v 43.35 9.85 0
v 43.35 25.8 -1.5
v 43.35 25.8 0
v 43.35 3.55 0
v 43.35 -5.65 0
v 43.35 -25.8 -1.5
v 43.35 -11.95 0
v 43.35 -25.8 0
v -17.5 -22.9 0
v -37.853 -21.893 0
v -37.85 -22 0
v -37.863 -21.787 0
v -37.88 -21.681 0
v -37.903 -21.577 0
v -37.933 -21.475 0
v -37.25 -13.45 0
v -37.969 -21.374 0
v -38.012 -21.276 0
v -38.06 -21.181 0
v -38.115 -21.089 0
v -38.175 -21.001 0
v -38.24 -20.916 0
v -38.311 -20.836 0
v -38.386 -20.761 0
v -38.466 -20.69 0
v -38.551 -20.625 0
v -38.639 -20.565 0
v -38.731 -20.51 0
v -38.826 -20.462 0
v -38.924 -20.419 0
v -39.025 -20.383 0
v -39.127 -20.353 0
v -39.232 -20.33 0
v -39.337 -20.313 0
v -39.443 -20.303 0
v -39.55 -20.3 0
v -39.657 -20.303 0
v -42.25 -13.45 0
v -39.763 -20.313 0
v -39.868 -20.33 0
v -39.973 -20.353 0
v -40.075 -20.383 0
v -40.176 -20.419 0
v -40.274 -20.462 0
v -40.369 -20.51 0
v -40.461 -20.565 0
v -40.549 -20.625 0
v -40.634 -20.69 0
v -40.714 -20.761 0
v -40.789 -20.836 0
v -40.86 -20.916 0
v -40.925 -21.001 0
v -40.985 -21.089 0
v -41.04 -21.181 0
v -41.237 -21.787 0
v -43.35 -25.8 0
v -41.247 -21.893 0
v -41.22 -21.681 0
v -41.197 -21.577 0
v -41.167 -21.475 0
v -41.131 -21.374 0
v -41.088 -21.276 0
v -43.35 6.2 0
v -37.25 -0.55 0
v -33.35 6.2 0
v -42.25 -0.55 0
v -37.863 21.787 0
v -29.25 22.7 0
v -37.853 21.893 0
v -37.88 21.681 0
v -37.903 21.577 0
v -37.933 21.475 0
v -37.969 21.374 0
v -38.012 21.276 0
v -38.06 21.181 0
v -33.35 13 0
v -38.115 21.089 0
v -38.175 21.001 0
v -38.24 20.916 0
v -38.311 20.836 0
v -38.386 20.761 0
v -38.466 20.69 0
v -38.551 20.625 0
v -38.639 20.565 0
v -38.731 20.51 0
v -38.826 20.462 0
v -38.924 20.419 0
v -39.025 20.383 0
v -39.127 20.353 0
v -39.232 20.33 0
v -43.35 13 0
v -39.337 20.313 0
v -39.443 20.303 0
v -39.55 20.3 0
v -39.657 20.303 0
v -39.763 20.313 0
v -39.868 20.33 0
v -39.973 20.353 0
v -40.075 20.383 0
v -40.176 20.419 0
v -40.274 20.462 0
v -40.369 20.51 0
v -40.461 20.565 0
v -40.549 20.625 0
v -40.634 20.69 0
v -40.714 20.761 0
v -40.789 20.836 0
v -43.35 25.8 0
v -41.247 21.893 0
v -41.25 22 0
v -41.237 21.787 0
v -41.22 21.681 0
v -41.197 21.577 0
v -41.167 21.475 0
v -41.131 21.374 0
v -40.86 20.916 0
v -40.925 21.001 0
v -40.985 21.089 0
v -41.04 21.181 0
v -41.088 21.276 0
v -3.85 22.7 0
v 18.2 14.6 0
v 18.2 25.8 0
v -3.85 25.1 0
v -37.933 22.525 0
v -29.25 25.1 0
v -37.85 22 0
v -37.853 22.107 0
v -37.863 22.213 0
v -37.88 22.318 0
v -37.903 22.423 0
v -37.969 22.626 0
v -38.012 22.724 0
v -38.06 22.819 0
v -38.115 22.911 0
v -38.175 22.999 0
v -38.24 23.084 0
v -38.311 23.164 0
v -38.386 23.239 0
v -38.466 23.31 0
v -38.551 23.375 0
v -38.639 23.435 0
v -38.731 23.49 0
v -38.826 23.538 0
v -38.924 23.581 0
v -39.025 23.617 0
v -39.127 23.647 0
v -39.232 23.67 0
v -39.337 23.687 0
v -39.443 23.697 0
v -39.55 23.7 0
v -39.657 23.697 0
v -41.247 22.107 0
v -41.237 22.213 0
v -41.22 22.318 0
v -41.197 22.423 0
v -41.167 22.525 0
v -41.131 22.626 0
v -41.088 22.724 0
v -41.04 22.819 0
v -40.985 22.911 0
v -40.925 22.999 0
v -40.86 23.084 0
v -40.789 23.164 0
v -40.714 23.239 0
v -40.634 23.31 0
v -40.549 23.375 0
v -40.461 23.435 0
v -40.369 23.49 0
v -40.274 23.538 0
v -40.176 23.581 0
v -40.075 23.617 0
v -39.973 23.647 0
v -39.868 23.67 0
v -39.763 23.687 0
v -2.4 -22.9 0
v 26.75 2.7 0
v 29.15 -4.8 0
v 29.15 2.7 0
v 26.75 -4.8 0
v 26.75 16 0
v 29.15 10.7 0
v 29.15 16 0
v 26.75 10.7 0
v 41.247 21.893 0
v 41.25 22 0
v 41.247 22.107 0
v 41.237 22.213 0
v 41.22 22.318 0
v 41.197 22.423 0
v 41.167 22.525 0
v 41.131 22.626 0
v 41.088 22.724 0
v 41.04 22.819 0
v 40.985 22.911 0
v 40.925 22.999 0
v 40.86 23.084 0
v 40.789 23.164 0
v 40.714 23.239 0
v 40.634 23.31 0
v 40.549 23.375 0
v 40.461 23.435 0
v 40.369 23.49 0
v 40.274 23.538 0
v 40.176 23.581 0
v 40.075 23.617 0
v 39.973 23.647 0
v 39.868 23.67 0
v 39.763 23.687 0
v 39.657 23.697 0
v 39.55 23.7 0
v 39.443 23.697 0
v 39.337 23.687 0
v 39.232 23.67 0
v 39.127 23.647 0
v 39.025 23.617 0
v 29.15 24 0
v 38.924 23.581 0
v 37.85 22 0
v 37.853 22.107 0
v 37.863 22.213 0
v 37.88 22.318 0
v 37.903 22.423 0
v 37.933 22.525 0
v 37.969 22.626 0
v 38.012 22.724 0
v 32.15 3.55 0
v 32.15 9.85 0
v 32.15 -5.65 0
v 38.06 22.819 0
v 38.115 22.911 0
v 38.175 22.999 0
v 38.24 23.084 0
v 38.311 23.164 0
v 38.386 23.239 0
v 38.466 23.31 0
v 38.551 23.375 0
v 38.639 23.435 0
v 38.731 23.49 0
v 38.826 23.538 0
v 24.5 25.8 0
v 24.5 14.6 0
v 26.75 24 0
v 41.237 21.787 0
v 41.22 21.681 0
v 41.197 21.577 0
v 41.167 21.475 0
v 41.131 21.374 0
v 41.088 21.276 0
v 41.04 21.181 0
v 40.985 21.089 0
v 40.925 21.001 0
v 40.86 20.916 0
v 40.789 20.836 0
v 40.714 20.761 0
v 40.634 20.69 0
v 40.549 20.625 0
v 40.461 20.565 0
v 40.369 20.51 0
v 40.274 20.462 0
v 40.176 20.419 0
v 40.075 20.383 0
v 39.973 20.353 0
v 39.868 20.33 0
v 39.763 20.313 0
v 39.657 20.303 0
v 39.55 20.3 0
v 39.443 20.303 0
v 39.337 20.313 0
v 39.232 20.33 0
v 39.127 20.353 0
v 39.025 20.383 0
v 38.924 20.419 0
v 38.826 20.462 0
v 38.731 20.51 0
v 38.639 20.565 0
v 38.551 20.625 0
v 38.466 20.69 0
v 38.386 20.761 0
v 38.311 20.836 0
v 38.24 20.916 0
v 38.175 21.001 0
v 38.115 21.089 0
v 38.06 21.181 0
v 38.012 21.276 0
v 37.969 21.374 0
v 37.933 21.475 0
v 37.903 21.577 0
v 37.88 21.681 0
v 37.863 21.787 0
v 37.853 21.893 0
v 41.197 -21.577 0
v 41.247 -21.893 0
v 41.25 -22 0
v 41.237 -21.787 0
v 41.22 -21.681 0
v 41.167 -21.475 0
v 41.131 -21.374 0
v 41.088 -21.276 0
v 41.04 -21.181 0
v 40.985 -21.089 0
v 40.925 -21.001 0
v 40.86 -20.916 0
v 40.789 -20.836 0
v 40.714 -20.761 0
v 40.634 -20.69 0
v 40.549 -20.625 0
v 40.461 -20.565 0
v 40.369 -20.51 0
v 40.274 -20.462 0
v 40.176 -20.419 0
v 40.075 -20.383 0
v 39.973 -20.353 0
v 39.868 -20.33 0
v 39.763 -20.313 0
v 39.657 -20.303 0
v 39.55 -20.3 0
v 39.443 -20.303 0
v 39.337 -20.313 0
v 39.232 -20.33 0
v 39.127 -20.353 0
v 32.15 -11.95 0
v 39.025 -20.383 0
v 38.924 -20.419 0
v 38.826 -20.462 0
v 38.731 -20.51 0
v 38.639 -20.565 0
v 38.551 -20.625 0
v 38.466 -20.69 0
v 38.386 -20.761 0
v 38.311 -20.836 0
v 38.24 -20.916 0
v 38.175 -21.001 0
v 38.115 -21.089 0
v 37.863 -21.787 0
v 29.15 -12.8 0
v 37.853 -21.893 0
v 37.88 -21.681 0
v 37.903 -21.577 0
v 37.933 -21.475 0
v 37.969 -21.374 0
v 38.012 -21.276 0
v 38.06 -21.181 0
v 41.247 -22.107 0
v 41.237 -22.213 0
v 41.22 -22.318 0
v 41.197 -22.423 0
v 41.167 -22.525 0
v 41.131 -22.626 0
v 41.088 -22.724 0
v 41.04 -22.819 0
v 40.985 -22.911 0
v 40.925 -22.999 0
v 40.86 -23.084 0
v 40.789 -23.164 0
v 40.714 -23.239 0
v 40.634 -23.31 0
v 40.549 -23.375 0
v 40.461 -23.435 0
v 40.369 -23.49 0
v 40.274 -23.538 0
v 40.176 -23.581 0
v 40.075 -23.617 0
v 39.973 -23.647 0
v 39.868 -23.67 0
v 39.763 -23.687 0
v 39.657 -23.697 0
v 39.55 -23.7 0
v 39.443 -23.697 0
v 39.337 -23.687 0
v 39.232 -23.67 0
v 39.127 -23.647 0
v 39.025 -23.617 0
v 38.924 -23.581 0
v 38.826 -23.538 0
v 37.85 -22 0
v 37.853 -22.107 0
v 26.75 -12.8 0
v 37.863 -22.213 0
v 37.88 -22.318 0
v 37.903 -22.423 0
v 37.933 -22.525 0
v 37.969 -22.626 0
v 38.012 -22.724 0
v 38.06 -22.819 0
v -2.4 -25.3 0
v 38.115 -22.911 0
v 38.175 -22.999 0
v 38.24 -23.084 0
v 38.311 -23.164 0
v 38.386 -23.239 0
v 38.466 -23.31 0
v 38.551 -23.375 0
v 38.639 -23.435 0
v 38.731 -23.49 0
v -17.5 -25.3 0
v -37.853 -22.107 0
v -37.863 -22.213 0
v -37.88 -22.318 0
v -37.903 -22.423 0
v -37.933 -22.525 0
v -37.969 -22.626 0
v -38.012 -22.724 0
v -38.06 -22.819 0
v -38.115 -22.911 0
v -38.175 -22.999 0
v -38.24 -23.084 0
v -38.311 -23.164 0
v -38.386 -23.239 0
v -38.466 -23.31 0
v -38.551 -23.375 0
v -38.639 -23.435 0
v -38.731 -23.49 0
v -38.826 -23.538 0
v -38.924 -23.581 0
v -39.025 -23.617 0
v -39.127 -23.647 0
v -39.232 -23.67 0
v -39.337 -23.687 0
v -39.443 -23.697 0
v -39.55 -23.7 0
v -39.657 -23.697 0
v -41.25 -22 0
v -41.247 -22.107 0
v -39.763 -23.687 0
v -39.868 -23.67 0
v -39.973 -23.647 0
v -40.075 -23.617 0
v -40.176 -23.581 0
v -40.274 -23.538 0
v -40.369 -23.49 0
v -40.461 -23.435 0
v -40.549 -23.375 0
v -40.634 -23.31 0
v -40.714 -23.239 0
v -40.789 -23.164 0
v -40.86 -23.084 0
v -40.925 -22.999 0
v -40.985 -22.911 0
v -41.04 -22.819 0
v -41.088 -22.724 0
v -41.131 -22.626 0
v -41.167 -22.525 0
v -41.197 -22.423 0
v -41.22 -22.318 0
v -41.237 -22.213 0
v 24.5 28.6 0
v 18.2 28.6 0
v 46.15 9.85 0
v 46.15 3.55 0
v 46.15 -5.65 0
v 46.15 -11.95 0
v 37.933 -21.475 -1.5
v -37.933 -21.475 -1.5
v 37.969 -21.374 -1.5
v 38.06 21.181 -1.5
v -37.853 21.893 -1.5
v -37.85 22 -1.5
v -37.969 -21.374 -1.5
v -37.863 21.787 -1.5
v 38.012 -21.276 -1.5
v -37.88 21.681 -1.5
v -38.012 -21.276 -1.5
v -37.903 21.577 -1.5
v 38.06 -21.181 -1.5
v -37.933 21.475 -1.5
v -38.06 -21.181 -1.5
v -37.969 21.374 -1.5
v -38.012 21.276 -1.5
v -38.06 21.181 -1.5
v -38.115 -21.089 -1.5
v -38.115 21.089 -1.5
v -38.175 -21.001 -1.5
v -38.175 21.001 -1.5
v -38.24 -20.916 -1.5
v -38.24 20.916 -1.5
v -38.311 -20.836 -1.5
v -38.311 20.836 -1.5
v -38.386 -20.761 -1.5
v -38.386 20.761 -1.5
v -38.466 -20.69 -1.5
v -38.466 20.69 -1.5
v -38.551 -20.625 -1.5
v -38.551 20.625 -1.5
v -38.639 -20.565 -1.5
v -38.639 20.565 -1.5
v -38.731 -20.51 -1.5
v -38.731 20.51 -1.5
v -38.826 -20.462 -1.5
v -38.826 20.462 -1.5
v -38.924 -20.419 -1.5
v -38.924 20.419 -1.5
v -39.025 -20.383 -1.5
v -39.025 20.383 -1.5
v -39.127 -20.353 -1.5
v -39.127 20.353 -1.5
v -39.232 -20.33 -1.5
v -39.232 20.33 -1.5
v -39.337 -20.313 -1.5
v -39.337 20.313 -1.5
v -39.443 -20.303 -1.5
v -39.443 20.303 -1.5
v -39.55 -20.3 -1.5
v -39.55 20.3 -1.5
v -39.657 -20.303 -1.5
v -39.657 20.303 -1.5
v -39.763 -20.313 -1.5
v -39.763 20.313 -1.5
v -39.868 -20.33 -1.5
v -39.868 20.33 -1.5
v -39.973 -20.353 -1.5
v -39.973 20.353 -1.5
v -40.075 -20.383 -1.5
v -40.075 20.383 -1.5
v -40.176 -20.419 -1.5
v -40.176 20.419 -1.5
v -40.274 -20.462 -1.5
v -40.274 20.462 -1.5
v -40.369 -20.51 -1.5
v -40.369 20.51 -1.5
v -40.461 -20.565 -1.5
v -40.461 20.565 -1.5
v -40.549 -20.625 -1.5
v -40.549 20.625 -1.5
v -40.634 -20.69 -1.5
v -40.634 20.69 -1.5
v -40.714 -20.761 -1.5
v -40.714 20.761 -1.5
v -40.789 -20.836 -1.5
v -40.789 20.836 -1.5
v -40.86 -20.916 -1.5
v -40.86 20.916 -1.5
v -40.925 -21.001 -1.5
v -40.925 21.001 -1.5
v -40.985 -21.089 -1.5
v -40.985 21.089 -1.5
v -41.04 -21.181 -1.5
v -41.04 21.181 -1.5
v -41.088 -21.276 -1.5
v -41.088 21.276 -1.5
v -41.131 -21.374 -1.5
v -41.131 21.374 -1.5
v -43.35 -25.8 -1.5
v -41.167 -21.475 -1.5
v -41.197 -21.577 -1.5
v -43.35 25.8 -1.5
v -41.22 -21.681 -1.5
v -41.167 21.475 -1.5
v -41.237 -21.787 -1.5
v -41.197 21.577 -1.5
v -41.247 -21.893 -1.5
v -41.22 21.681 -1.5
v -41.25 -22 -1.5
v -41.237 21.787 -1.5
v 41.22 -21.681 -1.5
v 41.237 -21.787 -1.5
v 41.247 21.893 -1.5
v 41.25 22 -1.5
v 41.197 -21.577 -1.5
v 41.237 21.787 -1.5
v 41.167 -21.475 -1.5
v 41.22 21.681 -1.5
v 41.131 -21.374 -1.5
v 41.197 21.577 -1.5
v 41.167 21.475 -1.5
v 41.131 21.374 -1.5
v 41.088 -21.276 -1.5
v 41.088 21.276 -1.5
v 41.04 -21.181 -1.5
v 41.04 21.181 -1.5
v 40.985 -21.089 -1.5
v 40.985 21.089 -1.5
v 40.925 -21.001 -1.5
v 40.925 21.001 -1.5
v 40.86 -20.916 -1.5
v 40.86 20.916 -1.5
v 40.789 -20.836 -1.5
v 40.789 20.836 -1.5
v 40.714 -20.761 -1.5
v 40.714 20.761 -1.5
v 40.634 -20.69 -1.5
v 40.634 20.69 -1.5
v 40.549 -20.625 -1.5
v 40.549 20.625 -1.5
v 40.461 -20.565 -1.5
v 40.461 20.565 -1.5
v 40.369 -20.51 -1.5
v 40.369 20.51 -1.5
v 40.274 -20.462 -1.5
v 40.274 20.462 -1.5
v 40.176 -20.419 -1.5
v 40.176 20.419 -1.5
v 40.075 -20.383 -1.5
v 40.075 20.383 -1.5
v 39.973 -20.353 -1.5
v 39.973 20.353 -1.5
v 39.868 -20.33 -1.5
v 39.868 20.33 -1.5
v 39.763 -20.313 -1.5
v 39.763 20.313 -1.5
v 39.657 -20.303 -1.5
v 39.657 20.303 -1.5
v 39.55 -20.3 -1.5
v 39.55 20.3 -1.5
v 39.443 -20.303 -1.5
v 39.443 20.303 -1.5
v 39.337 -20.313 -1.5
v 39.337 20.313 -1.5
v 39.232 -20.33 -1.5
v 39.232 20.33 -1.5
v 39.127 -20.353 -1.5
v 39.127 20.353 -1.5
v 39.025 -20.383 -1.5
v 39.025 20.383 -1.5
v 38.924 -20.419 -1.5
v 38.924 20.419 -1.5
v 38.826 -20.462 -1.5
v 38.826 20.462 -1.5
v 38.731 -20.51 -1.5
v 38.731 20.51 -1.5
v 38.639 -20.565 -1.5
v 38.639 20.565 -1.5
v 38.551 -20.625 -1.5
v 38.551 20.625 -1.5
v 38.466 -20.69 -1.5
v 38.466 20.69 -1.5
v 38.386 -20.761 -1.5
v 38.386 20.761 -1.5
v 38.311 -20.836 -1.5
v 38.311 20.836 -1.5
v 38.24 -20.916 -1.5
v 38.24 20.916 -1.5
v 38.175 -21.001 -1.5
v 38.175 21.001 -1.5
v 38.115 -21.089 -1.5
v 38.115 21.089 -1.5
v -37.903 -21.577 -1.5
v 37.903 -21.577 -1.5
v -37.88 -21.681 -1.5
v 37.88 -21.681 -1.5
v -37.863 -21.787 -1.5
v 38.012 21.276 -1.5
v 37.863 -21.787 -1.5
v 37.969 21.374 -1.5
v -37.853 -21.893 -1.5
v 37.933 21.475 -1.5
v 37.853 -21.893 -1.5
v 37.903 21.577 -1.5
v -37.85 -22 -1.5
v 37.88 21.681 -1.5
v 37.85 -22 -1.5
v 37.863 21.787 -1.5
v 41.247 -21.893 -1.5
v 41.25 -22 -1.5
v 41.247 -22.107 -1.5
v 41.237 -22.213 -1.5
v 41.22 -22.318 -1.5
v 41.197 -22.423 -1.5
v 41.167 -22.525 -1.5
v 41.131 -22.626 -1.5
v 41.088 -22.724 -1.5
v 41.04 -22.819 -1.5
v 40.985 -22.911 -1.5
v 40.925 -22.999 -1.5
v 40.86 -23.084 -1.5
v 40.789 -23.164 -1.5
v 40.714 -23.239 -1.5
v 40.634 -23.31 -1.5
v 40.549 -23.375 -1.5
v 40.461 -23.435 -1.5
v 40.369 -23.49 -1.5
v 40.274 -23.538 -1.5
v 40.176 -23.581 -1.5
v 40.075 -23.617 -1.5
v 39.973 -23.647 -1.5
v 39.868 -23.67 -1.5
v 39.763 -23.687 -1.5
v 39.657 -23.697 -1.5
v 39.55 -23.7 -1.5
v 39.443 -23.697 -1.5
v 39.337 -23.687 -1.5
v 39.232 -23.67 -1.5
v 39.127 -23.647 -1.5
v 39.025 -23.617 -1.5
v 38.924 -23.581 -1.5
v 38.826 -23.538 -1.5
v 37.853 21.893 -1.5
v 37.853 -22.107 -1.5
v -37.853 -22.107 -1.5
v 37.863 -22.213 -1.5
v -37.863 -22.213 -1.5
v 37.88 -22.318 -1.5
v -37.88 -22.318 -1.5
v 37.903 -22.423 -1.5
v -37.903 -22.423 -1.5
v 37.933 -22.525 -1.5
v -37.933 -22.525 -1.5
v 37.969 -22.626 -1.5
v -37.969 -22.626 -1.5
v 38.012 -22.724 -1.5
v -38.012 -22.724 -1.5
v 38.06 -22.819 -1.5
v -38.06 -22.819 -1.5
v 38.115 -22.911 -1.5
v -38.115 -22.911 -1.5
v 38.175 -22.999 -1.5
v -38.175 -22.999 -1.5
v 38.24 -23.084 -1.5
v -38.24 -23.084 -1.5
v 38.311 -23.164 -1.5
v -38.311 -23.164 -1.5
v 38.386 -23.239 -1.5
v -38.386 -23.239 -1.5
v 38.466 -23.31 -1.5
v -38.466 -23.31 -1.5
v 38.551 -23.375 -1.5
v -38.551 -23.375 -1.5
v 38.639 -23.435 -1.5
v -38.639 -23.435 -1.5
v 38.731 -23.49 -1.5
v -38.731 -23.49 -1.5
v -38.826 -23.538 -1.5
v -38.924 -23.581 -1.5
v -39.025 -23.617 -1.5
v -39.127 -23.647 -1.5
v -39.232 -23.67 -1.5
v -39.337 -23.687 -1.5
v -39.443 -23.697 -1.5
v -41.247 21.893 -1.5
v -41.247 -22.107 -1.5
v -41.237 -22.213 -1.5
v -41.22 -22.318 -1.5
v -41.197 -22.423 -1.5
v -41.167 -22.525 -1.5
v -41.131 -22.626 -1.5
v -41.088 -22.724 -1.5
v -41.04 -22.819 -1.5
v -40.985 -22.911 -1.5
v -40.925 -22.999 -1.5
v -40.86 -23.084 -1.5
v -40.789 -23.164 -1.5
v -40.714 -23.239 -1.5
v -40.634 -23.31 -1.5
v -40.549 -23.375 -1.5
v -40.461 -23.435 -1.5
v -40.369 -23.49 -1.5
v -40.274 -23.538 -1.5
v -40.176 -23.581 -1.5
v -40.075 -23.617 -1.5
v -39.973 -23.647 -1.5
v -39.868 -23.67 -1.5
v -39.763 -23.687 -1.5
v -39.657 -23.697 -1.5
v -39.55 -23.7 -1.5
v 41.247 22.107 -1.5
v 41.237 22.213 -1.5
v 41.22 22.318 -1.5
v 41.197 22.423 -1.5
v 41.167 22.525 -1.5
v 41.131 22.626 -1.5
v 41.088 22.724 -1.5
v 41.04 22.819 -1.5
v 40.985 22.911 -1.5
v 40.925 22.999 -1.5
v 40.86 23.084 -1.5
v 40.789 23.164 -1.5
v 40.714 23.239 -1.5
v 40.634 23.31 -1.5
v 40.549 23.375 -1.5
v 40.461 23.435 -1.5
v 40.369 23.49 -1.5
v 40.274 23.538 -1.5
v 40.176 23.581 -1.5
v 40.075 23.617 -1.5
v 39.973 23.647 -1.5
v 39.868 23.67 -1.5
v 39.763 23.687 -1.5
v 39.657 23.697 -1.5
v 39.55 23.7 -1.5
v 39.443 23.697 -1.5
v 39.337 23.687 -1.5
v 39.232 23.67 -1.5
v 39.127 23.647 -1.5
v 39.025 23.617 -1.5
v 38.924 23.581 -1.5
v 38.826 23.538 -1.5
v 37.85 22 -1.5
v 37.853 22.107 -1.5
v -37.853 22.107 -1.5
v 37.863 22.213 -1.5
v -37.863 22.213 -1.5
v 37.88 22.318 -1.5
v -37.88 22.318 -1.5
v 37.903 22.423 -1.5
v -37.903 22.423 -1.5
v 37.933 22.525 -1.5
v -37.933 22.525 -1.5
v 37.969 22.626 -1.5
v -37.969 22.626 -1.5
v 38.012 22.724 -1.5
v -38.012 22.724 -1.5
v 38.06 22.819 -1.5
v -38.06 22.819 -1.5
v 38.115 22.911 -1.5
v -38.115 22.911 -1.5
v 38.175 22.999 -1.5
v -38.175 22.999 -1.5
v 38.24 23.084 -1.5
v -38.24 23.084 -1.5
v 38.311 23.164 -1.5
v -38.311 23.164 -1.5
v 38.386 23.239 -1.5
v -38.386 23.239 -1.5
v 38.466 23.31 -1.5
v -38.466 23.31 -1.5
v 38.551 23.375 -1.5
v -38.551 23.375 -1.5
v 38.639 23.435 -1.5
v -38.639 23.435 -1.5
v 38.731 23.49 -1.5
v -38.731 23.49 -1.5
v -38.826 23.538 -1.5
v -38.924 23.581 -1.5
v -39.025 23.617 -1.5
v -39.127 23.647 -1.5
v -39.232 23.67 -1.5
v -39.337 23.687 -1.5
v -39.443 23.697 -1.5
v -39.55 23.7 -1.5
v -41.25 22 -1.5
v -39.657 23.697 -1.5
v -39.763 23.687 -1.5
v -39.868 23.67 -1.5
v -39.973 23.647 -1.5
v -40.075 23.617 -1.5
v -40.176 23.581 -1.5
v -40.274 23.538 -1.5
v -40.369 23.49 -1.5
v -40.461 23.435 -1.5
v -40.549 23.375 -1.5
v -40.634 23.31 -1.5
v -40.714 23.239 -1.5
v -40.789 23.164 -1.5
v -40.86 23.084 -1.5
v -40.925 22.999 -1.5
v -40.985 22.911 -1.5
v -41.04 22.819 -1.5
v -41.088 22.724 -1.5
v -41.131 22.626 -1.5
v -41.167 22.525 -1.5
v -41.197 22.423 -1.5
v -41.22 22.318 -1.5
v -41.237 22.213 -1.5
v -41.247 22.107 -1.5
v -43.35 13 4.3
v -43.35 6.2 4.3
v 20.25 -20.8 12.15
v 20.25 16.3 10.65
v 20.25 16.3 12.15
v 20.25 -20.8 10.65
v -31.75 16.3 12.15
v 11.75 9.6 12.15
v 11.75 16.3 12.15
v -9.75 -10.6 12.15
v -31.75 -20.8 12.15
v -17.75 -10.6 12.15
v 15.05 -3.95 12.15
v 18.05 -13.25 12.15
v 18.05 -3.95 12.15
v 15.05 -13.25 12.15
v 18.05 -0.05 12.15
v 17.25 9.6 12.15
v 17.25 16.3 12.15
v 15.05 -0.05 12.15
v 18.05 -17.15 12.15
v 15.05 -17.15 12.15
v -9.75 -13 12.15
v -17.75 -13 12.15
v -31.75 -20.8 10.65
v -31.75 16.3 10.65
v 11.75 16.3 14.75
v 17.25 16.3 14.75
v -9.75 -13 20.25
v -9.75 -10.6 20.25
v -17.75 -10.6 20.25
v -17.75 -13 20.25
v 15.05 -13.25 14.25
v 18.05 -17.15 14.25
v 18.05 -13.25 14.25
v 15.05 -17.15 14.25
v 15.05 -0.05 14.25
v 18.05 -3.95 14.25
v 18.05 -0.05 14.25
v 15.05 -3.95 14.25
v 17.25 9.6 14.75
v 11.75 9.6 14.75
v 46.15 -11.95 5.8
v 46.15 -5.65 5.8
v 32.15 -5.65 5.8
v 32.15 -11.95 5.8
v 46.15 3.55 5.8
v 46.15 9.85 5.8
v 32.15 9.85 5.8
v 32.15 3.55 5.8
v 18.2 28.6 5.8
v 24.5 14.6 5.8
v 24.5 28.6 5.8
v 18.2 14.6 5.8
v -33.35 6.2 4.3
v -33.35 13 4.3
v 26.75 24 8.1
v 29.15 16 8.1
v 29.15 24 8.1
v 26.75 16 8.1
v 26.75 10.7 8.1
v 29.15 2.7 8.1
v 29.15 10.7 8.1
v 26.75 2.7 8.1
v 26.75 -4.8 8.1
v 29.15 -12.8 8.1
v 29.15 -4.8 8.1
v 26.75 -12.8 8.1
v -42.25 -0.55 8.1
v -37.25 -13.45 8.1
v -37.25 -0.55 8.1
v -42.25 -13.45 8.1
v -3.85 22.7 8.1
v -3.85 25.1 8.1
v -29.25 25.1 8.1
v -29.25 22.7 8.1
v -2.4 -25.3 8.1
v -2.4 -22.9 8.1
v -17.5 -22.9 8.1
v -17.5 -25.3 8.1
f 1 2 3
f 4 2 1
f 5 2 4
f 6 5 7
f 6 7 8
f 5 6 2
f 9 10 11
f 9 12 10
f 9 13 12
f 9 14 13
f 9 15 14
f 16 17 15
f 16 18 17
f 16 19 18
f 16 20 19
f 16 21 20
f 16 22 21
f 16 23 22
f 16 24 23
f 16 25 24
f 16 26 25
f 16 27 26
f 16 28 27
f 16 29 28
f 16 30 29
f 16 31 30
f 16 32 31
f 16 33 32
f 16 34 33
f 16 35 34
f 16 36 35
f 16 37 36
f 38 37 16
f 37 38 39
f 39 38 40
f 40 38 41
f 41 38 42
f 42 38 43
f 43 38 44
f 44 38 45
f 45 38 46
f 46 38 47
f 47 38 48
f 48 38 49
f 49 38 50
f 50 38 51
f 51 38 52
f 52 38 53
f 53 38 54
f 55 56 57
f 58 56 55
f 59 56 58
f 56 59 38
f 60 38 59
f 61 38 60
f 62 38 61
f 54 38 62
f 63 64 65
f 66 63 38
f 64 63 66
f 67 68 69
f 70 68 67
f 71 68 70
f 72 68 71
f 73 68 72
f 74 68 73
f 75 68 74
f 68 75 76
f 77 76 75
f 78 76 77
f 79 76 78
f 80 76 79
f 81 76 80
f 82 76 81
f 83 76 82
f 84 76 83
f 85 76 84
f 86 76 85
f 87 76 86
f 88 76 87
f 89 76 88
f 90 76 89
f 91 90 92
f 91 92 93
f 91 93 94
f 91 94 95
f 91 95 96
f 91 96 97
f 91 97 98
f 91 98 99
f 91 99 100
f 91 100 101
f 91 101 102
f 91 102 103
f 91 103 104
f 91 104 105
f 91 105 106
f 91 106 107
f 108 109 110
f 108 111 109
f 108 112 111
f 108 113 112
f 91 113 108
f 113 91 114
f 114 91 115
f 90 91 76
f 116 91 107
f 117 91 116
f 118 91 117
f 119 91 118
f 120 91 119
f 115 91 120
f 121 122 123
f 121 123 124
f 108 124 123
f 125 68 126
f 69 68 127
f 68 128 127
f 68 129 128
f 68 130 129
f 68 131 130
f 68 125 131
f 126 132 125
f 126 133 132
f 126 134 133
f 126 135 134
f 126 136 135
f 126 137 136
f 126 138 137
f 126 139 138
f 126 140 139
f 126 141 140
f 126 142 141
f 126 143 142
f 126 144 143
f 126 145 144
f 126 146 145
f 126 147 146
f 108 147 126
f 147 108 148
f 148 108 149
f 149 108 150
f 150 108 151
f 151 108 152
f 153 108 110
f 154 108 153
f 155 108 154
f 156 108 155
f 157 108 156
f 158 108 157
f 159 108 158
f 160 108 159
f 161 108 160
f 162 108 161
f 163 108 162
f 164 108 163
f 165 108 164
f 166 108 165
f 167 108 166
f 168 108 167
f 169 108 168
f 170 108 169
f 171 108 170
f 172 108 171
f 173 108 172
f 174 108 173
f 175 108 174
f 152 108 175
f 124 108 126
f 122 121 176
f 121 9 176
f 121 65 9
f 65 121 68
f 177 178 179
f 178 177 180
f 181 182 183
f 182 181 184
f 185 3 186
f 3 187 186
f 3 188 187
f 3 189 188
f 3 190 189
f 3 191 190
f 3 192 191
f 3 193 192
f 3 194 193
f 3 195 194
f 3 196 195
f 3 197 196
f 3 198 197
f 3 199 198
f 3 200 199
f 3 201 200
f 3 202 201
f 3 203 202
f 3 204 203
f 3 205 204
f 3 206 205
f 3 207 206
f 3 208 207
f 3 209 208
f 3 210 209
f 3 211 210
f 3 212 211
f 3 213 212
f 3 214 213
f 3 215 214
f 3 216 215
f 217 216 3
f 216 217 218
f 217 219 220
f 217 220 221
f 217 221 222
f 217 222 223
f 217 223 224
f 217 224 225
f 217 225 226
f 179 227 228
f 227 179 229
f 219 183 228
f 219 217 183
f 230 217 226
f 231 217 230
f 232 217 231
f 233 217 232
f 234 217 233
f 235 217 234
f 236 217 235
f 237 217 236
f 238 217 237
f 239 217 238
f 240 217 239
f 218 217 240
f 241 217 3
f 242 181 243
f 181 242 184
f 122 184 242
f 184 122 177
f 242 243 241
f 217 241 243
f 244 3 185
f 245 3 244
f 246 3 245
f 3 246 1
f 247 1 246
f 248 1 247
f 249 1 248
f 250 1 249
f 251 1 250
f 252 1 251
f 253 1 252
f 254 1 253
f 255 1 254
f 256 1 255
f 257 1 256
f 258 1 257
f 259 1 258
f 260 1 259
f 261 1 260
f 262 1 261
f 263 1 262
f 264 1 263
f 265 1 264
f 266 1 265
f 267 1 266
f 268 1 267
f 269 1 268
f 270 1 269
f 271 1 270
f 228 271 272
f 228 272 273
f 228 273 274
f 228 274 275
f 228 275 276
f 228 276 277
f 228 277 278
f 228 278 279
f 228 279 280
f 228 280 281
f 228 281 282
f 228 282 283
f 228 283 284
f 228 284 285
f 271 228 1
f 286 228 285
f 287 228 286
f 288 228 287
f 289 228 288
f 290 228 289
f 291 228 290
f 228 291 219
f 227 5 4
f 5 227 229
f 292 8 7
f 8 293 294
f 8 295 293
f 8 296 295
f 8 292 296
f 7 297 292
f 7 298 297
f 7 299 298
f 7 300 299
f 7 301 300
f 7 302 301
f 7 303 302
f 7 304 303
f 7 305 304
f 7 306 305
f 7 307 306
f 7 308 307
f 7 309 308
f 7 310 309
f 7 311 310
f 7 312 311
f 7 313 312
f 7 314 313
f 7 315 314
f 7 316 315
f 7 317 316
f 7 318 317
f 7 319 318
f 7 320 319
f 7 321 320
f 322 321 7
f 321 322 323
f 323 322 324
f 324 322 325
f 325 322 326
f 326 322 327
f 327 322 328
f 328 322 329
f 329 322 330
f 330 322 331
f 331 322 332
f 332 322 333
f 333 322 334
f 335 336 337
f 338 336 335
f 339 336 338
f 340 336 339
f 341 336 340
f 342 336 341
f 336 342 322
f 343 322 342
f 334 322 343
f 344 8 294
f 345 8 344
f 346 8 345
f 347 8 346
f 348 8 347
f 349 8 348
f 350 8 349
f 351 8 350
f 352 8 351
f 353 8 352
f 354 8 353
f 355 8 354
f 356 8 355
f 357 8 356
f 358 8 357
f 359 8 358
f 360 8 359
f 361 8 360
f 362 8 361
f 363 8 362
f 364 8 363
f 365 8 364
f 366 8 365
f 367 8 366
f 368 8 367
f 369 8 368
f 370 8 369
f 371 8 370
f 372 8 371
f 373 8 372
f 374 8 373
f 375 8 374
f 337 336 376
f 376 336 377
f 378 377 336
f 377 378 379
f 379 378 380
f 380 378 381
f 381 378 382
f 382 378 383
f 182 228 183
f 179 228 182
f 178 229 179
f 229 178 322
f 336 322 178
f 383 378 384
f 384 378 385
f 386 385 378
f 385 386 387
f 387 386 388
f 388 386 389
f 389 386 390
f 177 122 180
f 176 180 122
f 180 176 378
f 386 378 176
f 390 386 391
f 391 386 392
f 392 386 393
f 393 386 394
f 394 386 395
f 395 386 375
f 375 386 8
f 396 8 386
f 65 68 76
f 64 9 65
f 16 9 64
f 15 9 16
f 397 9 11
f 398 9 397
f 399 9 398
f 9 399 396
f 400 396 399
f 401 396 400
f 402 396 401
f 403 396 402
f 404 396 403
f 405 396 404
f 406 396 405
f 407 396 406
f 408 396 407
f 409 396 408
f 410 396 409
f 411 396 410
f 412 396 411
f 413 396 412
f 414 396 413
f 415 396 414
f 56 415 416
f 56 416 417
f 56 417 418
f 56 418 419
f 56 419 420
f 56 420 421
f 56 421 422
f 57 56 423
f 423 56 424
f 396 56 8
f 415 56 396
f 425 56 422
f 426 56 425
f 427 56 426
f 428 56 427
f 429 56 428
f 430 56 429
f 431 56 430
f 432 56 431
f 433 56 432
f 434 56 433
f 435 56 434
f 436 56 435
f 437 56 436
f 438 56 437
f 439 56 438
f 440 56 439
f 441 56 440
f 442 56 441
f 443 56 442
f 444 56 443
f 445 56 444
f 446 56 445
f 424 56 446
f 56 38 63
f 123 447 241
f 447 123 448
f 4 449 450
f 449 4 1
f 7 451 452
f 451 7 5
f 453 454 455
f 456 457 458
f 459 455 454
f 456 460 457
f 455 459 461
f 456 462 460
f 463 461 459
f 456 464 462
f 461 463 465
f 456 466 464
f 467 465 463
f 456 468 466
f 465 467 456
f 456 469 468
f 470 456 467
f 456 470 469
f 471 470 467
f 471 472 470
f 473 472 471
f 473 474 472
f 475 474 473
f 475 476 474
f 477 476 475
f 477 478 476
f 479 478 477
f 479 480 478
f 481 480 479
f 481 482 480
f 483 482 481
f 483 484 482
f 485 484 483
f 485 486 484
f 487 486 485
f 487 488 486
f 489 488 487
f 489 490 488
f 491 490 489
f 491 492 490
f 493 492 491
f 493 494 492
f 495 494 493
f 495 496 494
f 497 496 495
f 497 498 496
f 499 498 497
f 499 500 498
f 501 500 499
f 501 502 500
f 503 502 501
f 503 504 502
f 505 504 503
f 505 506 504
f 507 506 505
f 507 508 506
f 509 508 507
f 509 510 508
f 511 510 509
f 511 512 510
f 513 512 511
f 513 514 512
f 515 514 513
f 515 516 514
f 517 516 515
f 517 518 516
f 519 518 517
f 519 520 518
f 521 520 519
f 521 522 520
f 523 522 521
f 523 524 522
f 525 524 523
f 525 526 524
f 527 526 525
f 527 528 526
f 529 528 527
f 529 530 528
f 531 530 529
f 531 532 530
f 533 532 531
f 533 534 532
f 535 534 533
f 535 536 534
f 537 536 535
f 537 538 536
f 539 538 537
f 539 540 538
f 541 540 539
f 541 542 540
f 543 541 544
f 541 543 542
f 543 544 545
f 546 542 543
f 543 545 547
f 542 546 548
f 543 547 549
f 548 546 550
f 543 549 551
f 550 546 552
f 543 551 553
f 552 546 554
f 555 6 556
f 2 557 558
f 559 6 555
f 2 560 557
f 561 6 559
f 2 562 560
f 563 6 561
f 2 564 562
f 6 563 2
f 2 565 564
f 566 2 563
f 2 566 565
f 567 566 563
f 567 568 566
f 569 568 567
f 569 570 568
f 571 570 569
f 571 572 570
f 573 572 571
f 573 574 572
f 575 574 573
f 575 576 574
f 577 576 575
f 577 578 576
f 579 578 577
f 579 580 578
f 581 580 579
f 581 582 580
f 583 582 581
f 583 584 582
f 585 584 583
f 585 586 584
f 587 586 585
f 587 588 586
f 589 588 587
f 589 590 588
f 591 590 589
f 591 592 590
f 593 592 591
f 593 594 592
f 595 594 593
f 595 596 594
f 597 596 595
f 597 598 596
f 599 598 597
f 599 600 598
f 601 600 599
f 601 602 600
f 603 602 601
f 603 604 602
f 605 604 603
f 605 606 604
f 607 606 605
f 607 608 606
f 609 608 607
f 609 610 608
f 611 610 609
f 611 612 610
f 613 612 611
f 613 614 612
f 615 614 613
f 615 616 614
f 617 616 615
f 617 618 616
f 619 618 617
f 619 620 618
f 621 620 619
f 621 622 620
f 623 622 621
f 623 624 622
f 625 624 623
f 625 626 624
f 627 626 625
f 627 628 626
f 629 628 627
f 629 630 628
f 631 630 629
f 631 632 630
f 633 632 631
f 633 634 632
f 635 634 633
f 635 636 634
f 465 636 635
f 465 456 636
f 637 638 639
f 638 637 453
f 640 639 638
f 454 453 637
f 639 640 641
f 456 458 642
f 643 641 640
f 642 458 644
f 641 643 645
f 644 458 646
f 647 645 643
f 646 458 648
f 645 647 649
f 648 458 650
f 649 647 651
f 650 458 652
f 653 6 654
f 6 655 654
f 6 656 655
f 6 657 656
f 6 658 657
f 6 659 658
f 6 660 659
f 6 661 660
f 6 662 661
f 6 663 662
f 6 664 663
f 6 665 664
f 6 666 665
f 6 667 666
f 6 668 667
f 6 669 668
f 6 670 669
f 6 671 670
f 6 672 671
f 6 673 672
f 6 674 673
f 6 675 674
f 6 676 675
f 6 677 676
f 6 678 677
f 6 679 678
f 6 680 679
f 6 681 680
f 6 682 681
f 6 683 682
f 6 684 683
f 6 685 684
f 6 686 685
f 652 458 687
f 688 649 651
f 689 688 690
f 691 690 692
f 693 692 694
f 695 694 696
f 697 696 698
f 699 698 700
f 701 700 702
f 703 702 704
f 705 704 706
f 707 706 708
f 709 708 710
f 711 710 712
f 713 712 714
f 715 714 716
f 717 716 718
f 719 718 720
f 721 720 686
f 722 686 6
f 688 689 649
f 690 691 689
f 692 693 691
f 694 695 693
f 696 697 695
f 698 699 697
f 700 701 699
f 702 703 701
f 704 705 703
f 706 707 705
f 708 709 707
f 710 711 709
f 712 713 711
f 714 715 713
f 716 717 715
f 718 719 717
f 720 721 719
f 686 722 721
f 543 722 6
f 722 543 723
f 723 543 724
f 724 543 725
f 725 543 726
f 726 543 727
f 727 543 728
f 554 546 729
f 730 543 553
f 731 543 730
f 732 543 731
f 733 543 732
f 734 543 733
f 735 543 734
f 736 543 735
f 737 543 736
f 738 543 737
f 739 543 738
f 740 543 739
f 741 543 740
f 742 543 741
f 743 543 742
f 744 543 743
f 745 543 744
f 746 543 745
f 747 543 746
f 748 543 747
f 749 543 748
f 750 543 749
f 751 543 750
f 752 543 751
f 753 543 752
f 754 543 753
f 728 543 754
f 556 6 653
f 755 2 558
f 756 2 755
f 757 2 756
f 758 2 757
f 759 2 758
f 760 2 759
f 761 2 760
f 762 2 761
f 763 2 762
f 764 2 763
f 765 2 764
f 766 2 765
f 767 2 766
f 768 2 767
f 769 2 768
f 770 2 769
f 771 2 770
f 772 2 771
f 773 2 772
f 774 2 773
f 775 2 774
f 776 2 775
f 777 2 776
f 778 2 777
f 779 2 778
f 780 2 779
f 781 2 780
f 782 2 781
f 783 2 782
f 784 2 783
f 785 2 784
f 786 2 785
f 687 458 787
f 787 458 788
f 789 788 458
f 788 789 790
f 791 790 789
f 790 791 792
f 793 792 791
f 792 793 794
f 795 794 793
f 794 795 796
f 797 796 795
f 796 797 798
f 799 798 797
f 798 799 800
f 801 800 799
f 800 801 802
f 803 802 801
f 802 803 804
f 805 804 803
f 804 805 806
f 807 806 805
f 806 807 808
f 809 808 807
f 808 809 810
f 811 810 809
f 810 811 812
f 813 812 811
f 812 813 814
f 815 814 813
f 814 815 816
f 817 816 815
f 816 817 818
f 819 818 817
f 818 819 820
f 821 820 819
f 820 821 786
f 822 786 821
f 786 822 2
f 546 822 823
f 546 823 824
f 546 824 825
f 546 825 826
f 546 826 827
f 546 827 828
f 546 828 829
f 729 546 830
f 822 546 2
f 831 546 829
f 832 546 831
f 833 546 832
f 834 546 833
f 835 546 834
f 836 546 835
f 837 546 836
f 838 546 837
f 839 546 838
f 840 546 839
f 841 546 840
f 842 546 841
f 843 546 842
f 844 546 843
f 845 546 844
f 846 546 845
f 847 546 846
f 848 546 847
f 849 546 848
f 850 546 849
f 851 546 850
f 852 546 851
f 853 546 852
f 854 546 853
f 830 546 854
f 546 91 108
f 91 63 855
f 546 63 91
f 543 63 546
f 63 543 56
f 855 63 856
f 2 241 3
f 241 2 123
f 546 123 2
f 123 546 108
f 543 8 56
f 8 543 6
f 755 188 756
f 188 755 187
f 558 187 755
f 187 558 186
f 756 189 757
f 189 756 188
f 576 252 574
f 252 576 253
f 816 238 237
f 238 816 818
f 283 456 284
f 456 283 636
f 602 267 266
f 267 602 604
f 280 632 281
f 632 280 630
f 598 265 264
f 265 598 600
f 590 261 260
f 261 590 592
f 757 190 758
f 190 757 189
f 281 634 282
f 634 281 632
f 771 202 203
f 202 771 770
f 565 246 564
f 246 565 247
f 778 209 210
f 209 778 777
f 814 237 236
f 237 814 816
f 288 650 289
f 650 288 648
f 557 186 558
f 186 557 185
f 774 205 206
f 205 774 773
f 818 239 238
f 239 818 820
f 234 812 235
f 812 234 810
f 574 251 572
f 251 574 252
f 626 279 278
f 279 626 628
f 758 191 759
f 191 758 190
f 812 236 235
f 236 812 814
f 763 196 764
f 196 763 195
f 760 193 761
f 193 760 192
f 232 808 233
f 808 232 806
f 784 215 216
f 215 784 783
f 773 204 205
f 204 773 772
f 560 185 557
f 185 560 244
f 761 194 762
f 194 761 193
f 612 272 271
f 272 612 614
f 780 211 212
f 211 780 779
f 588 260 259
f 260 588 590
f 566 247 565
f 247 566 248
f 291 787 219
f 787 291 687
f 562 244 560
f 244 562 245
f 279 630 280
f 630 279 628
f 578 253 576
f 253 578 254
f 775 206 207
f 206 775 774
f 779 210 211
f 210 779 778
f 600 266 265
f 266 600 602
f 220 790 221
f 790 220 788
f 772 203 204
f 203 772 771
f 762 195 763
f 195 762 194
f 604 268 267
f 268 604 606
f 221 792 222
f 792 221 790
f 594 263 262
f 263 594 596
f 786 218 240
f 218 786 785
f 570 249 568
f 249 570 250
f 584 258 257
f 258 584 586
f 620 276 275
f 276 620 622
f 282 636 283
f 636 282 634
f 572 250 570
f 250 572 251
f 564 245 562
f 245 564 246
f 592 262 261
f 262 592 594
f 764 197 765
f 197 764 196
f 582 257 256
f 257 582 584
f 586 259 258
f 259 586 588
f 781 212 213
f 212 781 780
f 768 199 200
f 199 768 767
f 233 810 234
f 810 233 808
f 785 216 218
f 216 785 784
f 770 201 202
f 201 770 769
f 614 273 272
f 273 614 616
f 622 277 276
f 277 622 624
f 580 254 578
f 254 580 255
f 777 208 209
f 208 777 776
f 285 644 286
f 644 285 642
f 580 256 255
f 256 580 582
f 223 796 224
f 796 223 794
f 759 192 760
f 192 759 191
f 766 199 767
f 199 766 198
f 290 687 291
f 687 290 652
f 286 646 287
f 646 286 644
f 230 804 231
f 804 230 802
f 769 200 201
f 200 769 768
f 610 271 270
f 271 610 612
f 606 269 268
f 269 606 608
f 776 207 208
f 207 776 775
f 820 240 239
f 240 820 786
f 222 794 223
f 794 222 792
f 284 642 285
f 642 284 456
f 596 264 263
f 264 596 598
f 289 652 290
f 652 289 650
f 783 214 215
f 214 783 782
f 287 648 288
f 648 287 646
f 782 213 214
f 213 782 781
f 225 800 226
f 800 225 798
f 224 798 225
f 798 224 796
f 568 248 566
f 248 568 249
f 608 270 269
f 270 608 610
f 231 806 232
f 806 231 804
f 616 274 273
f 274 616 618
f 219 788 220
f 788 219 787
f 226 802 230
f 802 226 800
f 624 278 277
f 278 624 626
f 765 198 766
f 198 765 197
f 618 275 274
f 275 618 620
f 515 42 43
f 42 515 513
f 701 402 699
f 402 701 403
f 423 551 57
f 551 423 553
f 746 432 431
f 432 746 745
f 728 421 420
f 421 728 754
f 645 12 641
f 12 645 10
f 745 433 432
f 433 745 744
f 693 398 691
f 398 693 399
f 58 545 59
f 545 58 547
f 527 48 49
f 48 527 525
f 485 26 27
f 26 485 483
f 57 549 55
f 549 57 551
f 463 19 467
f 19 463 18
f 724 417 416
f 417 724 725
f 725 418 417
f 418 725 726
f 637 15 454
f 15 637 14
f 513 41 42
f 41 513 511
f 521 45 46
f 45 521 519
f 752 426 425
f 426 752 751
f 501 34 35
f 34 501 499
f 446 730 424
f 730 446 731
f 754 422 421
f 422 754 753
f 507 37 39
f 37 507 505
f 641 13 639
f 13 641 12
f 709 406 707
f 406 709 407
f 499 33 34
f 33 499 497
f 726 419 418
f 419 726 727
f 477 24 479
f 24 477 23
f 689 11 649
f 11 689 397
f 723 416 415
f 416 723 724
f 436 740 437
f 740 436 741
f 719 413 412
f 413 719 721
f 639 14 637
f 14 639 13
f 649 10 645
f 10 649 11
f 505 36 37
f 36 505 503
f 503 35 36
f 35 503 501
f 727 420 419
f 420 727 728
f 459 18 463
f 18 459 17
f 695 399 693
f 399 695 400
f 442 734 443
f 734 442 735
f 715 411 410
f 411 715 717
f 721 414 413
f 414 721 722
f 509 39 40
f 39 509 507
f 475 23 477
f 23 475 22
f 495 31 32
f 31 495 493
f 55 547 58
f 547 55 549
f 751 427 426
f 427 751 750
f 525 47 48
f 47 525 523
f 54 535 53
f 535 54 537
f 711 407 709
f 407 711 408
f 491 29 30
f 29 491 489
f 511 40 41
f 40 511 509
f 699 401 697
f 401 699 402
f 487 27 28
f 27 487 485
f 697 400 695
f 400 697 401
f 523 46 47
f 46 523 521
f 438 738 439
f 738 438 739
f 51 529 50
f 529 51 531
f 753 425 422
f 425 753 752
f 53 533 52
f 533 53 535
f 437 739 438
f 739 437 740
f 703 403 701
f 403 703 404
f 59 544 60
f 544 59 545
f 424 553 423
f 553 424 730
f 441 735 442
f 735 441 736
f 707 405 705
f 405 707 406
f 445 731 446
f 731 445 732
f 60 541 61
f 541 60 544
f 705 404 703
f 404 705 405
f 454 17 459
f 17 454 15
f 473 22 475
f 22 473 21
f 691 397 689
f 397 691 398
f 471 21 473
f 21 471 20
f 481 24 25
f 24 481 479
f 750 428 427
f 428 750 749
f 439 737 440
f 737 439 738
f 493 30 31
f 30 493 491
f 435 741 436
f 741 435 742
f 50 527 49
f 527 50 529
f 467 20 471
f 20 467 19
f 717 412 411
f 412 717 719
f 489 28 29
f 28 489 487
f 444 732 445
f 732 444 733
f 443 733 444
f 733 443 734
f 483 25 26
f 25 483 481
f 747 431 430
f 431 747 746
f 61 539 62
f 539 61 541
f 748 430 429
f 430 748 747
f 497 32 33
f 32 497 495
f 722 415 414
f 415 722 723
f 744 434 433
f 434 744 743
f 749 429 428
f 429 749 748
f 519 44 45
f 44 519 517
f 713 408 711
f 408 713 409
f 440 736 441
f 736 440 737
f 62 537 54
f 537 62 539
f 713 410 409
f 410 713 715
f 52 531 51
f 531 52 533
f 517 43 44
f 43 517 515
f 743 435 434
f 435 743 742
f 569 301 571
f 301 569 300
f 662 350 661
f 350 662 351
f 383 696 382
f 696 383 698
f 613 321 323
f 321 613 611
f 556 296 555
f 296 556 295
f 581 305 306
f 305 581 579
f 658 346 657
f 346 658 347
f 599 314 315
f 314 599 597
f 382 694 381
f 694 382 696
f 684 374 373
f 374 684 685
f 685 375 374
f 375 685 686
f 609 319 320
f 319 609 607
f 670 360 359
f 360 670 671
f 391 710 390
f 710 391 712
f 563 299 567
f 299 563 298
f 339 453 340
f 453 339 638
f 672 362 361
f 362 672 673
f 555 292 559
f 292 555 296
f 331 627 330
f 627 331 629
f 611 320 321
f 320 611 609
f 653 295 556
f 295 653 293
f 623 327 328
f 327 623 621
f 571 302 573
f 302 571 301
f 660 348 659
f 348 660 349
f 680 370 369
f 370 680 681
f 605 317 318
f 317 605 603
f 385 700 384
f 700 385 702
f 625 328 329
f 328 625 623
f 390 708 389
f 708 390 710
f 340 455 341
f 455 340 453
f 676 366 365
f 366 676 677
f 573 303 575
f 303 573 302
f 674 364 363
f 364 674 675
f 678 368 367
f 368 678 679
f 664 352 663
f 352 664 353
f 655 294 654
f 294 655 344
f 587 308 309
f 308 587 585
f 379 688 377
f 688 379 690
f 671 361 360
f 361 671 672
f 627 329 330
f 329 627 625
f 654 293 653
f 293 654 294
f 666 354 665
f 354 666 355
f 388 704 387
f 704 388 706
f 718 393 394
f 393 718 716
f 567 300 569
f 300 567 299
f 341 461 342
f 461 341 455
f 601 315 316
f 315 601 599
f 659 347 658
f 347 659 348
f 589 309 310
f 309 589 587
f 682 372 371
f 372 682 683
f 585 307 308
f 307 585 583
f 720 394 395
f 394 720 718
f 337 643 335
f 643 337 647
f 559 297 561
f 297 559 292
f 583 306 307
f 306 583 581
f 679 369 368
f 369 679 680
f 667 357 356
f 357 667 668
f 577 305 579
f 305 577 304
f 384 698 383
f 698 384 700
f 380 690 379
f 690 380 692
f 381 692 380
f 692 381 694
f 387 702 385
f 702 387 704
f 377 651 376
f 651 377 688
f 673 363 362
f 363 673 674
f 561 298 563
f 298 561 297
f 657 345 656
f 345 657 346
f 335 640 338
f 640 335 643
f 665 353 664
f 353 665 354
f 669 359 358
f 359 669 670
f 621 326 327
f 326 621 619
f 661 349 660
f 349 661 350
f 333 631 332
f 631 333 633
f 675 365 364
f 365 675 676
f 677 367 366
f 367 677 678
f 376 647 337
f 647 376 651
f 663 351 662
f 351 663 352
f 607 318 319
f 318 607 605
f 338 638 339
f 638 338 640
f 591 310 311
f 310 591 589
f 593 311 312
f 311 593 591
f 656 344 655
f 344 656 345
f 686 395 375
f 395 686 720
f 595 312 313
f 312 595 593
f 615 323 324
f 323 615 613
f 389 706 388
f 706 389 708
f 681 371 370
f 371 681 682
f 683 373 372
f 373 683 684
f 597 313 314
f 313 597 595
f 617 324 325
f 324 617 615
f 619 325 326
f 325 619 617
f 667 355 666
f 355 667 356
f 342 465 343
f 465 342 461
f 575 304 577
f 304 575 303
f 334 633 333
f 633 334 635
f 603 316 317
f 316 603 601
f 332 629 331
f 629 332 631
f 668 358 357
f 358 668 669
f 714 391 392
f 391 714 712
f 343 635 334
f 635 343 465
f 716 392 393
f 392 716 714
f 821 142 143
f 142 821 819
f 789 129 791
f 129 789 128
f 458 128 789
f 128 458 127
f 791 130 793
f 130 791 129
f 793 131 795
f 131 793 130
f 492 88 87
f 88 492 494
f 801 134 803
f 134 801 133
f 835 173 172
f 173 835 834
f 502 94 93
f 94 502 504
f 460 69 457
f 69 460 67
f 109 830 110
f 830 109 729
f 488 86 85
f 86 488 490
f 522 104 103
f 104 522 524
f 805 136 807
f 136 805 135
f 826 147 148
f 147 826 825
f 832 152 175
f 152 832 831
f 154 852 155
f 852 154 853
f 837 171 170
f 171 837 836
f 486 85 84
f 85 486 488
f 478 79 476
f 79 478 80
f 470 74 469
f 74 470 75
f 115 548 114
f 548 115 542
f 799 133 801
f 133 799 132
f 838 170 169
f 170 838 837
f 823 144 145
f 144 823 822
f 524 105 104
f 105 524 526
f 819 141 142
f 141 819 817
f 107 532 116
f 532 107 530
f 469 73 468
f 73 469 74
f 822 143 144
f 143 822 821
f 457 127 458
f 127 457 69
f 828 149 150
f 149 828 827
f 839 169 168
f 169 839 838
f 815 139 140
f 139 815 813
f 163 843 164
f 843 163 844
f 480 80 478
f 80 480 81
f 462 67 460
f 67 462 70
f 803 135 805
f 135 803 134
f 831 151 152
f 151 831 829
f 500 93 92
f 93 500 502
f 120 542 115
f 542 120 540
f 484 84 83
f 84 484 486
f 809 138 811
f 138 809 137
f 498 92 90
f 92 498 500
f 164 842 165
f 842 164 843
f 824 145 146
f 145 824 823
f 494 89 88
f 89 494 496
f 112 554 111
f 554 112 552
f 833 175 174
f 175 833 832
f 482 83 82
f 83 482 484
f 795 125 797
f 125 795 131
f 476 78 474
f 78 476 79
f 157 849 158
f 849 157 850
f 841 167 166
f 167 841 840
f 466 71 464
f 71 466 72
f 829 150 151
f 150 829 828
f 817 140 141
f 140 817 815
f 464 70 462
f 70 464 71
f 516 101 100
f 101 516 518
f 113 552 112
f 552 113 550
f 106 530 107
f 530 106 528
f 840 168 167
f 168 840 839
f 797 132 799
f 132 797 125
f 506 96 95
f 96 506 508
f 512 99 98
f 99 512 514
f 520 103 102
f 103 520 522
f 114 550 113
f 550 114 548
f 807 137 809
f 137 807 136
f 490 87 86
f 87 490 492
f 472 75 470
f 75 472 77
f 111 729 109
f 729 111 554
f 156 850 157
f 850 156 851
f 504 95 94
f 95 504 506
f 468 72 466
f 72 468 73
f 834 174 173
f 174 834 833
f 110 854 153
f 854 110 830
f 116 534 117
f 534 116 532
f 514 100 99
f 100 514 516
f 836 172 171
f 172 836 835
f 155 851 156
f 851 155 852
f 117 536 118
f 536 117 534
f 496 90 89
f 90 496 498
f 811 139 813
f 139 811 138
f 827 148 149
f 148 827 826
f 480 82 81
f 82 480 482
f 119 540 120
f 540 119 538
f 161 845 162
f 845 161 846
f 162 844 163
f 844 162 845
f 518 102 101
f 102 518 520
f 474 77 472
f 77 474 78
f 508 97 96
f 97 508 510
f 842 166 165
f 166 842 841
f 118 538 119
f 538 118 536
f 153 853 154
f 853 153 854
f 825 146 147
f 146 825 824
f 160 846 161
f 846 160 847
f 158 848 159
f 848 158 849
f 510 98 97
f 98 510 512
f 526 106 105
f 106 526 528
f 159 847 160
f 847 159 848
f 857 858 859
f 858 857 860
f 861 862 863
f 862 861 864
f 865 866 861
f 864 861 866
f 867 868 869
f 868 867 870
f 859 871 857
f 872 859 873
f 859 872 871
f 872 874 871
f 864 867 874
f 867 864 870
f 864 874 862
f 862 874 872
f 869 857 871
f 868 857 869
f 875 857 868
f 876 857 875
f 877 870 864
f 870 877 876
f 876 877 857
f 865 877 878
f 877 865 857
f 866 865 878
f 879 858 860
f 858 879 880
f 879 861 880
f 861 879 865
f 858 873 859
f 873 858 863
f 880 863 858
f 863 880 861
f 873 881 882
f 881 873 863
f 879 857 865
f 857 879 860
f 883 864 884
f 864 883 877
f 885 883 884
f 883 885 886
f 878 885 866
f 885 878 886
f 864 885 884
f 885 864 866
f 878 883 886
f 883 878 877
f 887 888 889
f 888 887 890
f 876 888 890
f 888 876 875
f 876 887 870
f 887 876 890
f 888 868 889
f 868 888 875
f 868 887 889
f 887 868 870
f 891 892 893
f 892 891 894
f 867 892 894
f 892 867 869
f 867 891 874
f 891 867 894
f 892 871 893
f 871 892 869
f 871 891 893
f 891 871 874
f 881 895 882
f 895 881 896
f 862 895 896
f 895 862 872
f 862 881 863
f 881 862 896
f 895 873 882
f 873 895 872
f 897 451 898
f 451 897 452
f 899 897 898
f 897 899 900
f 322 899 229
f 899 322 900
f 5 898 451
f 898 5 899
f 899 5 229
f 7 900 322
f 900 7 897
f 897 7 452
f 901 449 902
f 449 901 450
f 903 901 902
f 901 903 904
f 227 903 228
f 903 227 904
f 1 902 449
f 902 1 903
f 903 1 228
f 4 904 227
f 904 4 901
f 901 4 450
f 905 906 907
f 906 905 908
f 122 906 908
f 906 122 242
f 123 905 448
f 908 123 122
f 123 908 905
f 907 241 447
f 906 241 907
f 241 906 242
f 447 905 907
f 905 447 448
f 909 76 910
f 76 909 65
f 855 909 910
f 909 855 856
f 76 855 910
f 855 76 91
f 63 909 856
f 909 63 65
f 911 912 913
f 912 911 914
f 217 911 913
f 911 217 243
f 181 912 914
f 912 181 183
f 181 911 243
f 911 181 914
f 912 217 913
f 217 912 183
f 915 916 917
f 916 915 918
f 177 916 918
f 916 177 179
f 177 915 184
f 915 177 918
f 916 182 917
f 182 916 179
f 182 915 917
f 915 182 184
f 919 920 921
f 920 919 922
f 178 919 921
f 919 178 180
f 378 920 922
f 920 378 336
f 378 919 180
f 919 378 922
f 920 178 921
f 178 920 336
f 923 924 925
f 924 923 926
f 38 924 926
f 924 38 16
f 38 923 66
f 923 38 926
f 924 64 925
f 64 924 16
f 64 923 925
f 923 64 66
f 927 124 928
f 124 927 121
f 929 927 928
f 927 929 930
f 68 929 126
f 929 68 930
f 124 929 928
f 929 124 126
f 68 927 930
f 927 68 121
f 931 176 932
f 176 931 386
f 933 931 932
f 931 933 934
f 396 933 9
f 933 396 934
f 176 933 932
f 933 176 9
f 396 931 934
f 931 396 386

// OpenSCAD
// file: common.scad
holes_distance_to_border_pcb = 3.8;
holes_diameter = 3.4;
pcb_size = [86.7, 51.6, 1.5 ];
margin_xy = 4;
wall_width = 2;
epsilon = 0.35;
holes_distance_to_border_case_bottom = holes_distance_to_border_pcb + margin_xy;
bottom_box_internal_size = [pcb_size[0] + margin_xy*2,
                            pcb_size[1] + margin_xy*2,
                            6];
                                      
top_box_internal_size = [bottom_box_internal_size[0],
                         bottom_box_internal_size[1],
                         25];
// main file
include <common.scad>;

module mini_momentary_switch(control_components_margin)
{
     size = [3.9, 3, 2.1] + control_components_margin;
     translate([0,
               0,
               size[2]/2])
    cube(size,center=true);
}

module mini_dip_switch_4(control_components_margin)
{
    size = [6.7, 5.5, 2.6] + control_components_margin;
    translate([-size[0]/2,
               size[1]/2,
               size[2]/2])
    cube(size,center=true);
}
    
module header_1x3_pin(control_components_margin)
{
     size = [8, 2.4, 8.1] + control_components_margin;
     translate([0,
               0,
               size[2]/2])
     cube(size,center=true);   
}
module header_2x5_pin(control_components_margin)
{
    size = [12.9, 5, 8.1] + control_components_margin;
    translate([0,
               0,
               size[2]/2])
    cube(size,center=true);
}
module header_1x10_pin(control_components_margin)
{
    size = [25.4, 2.4, 8.1] + control_components_margin;
    translate([0,
               0,
               size[2]/2])
    cube(size,center=true);
}

module header_1x6_pin(control_components_margin)
{
    size = [15.1, 2.4, 8.1] + control_components_margin;
    translate([0,
               0,
               size[2]/2])
    cube(size,center=true);
}
module daughter_pcb(pcb_daugther_size, control_components_margin)
{
    $fn=100;
    union()
    {
        color("springgreen",1)
        translate([pcb_daugther_size[0]/2,
                   -pcb_daugther_size[1]/2,
                   -pcb_daugther_size[2]/2])
        cube(pcb_daugther_size, center=true);
    
        // jp2
        color("black",1)
        translate([18,
                   9 - pcb_daugther_size[1],
                   ])
        header_1x3_pin(control_components_margin);
        
        
        // btn1
        color("grey", 1)
        translate([pcb_daugther_size[0] - 3.7,
                   5.6 - pcb_daugther_size[1],
                   0])
        rotate([0,0,90])
        mini_momentary_switch(control_components_margin);
        
        // btn2
        color("grey", 1)
        translate([pcb_daugther_size[0] - 3.7,
                   18.8 - pcb_daugther_size[1],
                   0])
        rotate([0,0,90])
        mini_momentary_switch(control_components_margin);
        
        
        // sw1
        translate([pcb_daugther_size[0]-3,
                   0,
                   0])
        rotate([0,0,90])
        mini_dip_switch_4(control_components_margin);
    }
}


module pcb(control_components_margin) 
{   
    $fn=100;
    union()
    {
        translate([0,0,-pcb_size[2]/2])
        difference(){
        // main PCB
        color("green",1)
        cube(pcb_size,center=true);
        
        // 4 corner holes
        translate([pcb_size[0]/2 - holes_distance_to_border_pcb,
                   pcb_size[1]/2 - holes_distance_to_border_pcb,
                   0])
        cylinder(h=pcb_size[2], d=holes_diameter, center=true);
        
        translate([holes_distance_to_border_pcb - pcb_size[0]/2,
                   holes_distance_to_border_pcb - pcb_size[1]/2,
                   0])
        cylinder(h=pcb_size[2], d=holes_diameter, center=true);
        
        translate([pcb_size[0]/2 - holes_distance_to_border_pcb,
                   holes_distance_to_border_pcb - pcb_size[1]/2,
                   0])
        cylinder(h=pcb_size[2], d=holes_diameter, center=true);
        
        translate([holes_distance_to_border_pcb - pcb_size[0]/2,
                   pcb_size[1]/2 - holes_distance_to_border_pcb,
                   0])
        cylinder(h=pcb_size[2], d=holes_diameter, center=true);
    }
    
    // add jacks
    jack_size = [14, 6.3, 5.8];
    jack_inner_length = 11.2;
        
    hpout01_jack_distance_to_border = 17;
    hpout23_jack_distance_to_border = 19.1;
    linein01_jack_distance_to_border = 22;
    
    // HP out 0/1
    color("black", 1)
    translate([pcb_size[0]/2 - jack_size[0]/2 + (jack_size[0]-jack_inner_length),
    hpout01_jack_distance_to_border - pcb_size[1]/2,
    jack_size[2]/2])
    cube(jack_size, center=true);
    
    // HP out 2/3
    color("yellow", 1)
    translate([pcb_size[0]/2 - jack_size[0]/2 + (jack_size[0]-jack_inner_length),
    pcb_size[1]/2 - hpout23_jack_distance_to_border,
    jack_size[2]/2])
    cube(jack_size, center=true);
    
    // line in 0/1
    color("hotpink", 1)
    translate([pcb_size[0]/2 - linein01_jack_distance_to_border,
        pcb_size[1]/2 - jack_size[0]/2 + (jack_size[0]-jack_inner_length),
        jack_size[2]/2])
    rotate([0,0,90])
    cube(jack_size, center=true);
   
   // USB-C connector
    usbc_distance_to_border = 16.2;
    usbc_size = [10, 6.8, 4.3];
    
    color("lightgray", 1)
    translate([(usbc_size[0] - pcb_size[0])/2,
               pcb_size[1]/2 - usbc_distance_to_border,
              usbc_size[2]/2])
    cube(usbc_size, center=true);
    
    // headers
    j41_3p_center_distance_to_border = [15.4, 5.8];
    j61_3p_center_distance_to_border = [15.4, hpout23_jack_distance_to_border];
    j51_3p_center_distance_to_border = [15.4, pcb_size[1] - hpout01_jack_distance_to_border];
    
    // j41
    color("hotpink", 1)
    translate([pcb_size[0]/2 - j41_3p_center_distance_to_border[0],
               pcb_size[1]/2 - j41_3p_center_distance_to_border[1],
               0])
    rotate([0,0,90])
    header_1x3_pin(control_components_margin);
   
    // j61
    color("yellow", 1)
    translate([pcb_size[0]/2 - j61_3p_center_distance_to_border[0],
               pcb_size[1]/2 - j61_3p_center_distance_to_border[1],
               0])
    rotate([0,0,90])
    header_1x3_pin(control_components_margin);
    
    // j51
    color("black", 1)
    translate([pcb_size[0]/2 - j51_3p_center_distance_to_border[0],
               pcb_size[1]/2 - j51_3p_center_distance_to_border[1],
               0])
    rotate([0,0,90])
    header_1x3_pin(control_components_margin);
    
    // j1
    j1_center_distance_to_border = [32.8,3.6];
    color("black",1)
    translate([j1_center_distance_to_border[1]-pcb_size[0]/2,
               pcb_size[1]/2 - j1_center_distance_to_border[0],
               0])
    rotate([0,0,90])
    header_2x5_pin(control_components_margin);
    
    // j2
    j2_center_distance_to_border = [26.8, 1.9];
    color("black",1)
    translate([j2_center_distance_to_border[0] - pcb_size[0]/2,
               pcb_size[1]/2 - j2_center_distance_to_border[1],
               0])
    header_1x10_pin(control_components_margin);
    
    // j3
    j3_center_distance_to_border = [33.4, 1.7];
    color("black",1)
    translate([j3_center_distance_to_border[0] - pcb_size[0]/2,
               j3_center_distance_to_border[1] - pcb_size[1]/2,
               0])
    header_1x6_pin(control_components_margin);
    
    pcb_daugther_size = [52 , 37.1, 1.5];
    pcb_daugther_distance_to_border = [11.6, 9.5, 10.65];
    translate([pcb_daugther_distance_to_border[0] - pcb_size[0]/2,
               pcb_size[1]/2 - pcb_daugther_distance_to_border[1],
               pcb_daugther_distance_to_border[2] + pcb_size[2]])
    daughter_pcb(pcb_daugther_size,control_components_margin);
}
}

pcb([0,0,0]);
